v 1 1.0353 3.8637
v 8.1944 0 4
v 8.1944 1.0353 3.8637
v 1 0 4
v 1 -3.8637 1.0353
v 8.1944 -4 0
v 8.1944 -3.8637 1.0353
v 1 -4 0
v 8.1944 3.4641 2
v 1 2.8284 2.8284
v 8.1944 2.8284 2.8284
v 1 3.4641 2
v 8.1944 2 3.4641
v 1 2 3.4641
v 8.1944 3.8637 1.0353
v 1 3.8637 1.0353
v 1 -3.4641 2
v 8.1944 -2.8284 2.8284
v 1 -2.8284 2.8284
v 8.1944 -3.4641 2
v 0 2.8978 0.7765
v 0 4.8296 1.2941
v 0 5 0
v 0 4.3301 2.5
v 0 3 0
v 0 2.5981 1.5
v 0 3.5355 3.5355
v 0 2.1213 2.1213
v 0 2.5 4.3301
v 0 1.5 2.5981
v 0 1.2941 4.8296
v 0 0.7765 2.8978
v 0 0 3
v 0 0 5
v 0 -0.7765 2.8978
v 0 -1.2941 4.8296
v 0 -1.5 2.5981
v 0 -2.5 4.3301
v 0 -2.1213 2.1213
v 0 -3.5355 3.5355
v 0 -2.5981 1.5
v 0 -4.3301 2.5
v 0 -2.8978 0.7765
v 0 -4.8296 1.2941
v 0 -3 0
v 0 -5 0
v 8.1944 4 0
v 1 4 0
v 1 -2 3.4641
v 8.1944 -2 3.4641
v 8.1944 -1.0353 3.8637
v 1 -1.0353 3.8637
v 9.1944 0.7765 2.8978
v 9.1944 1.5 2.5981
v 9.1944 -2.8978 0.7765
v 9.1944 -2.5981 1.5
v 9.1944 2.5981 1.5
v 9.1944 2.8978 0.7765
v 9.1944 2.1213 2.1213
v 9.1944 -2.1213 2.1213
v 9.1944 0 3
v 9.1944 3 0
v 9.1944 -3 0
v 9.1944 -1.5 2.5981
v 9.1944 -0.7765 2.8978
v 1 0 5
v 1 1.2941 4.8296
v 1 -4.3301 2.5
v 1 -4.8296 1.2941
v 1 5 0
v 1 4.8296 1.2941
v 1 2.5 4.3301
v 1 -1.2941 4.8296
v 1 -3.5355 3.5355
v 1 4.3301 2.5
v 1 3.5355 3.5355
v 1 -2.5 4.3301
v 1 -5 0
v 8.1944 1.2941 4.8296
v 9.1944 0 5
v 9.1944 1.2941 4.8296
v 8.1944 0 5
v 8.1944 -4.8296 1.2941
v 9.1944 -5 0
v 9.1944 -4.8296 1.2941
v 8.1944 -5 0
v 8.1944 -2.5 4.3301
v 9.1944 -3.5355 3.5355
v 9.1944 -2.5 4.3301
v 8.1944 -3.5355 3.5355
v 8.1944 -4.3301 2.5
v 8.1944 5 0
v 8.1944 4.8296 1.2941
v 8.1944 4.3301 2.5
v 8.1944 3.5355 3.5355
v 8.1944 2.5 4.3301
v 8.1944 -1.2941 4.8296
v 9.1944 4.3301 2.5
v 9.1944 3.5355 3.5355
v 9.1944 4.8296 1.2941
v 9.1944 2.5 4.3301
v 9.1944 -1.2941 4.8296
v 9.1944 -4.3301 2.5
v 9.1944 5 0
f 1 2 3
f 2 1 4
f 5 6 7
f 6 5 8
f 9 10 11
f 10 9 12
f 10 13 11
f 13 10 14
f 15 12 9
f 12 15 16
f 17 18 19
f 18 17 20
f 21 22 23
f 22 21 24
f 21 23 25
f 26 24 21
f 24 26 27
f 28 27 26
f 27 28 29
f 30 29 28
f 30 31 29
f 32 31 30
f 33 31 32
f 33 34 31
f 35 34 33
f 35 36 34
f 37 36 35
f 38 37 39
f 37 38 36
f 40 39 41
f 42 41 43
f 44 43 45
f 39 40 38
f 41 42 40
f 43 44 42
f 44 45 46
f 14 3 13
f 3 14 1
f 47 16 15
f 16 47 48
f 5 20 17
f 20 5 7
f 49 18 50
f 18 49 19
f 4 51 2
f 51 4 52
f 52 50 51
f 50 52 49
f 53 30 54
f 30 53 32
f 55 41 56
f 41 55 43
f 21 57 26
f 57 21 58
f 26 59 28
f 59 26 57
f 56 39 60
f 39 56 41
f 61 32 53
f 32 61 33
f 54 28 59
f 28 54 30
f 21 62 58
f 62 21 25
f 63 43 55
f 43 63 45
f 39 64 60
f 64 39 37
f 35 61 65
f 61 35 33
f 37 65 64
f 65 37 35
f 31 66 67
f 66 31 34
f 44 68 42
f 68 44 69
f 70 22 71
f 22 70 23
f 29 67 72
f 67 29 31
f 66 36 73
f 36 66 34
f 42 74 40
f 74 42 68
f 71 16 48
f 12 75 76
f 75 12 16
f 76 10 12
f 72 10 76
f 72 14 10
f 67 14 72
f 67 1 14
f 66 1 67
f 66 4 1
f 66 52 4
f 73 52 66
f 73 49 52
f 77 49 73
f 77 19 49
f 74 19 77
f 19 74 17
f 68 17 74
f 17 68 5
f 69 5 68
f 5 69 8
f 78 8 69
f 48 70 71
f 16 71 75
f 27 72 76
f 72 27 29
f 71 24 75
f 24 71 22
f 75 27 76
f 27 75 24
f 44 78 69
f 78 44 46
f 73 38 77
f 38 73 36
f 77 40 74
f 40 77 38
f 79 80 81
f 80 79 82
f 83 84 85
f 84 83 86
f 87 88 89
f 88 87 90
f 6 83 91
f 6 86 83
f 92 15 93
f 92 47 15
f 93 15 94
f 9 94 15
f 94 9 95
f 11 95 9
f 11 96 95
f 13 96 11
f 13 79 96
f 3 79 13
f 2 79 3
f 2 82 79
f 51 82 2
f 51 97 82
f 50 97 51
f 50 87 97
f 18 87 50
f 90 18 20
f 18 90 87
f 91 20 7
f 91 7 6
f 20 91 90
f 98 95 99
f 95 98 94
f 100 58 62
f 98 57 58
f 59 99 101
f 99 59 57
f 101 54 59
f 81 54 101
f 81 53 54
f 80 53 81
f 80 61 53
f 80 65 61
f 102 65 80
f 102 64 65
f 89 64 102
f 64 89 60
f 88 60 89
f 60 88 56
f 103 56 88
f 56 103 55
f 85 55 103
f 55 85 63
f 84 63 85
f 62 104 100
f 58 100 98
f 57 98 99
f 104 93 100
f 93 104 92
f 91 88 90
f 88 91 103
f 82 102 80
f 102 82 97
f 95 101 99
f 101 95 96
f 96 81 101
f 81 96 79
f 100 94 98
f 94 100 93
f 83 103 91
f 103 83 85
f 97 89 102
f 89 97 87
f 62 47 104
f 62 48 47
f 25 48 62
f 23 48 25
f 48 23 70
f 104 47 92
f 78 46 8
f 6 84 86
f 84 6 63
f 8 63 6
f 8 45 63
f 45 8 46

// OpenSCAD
// file: ../build_environments.scad
// build_environments.scad: modules to build level sections
//

module pool(diameter=10.0, wall_height=2.0, step_width=3.0, connections=[])
{
    difference() {
        union() {
        difference() {
            cylinder(h=0.5,r1=diameter+step_width,r2=diameter+step_width,$fn=48);
            translate([0,0,-0.1])
                cylinder(h=0.7,r1=diameter,r2=diameter,$fn=48);
        }
        difference() {
            cylinder(h=wall_height,r1=diameter+step_width+1.0,r2=diameter+step_width+1.0,$fn=48);
            translate([0,0,-0.1])
                cylinder(h=wall_height+0.2,r1=diameter+step_width,r2=diameter+step_width,$fn=48);
        }
        }
    
        for (c = connections)
        {
            rotate([0,90,0]) {
                angle = atan2(c[1],c[0]);
                rotate([-angle,0,0]) {
                    cylinder(h=diameter+5.0,r1=c[2],r2=c[2],$fn=48);
                }
            }
        }
    }
}

module straight(length=10.0, width=2.0, dy1=0.0, dy2=0.0, dz=0.0)
{
    dims = [0, 0, 0, 0, 0, (dz/length)];
    matrix = [
        [ 1, dims[0], dims[1], 0 ],
        [ dims[2], 1, dims[4], 0 ],
        [ dims[5], dims[3], 1, 0 ],
        [ 0, 0, 0, 1 ]
    ];
    multmatrix(matrix)
    difference() {
        translate([dy1,0,0])
        union() {
            rotate([0,90,0]) {
                difference() {
                    cylinder(h=(length-dy1-dy2),r1=width+1.0,r2=width+1.0,$fn=24);
                    translate([0,0,-0.1])
                        cylinder(h=(length-dy1-dy2+0.2),r1=width,r2=width,$fn=24);
                }
                difference() {
                    cylinder(h=1.0,r1=width+2.0,r2=width+2.0,$fn=24);
                    translate([0,0,-0.1])
                        cylinder(h=1.2,r1=width,r2=width,$fn=24);
                }
                translate([0,0,(length-dy1-dy2)-1.0]) {
                    difference() {
                        cylinder(h=1.0,r1=width+2.0,r2=width+2.0,$fn=24);
                        translate([0,0,-0.1])
                            cylinder(h=1.2,r1=width,r2=width,$fn=24);
                    }
                }
            }
        }
        translate([0,0,-(2*width+4.0)/2])
            cube([3*length,3*length,2*width+4.0],center=true);
    }
}

module curve(p0=[0,0], center=[0,0], dir=1, angle=0.0, width=2.0)
{
    radius = sqrt((p0[0]-center[0])*(p0[0]-center[0]) + (p0[1]-center[1])*(p0[1]-center[1]));
    if (dir == 0) {
        difference() {
            rotate([0,0,-90])
            difference() {
                rotate_extrude(angle = angle, convexity = 10, $fn=32)
                    translate([radius, 0, 0])
                        circle(r = width+1.0,$fn=24);
                rotate([0,0,-1.0])
                    rotate_extrude(angle = angle+2.0, convexity = 10, $fn=32)
                        translate([radius, 0, 0])
                            circle(r = width,$fn=24);
            }
            translate([0,0,-(2*width+4.0)/2])
                cube([5*radius,5*radius,2*width+4.0],center=true);
        }
    }
    else {
        difference() {
            rotate([0,0,90])
            difference() {
                rotate_extrude(angle = -angle, convexity = 10, $fn=32)
                    translate([radius, 0, 0])
                        circle(r = width+1.0,$fn=24);
                rotate([0,0,1.0])
                    rotate_extrude(angle = -angle-2.0, convexity = 10, $fn=32)
                        translate([radius, 0, 0])
                            circle(r = width,$fn=24);
            }
            translate([0,0,-(2*width+4.0)/2])
                cube([5*radius,5*radius,2*width+4.0],center=true);
        }
    }

}

// test pool
//pool(diameter=12.0000, wall_height=3.0000, step_width=3.0000, connections=[[0.0000,-26.0000,2.0000], [23.6074,0.0000,2.0000]]);

// test straight, slope
//straight(length=26.0000, width=2.0000, dy1=11.8322, dy2=6.7082, dz=0.0000);
//straight(length=29.1549, width=12.0000, dy1=0.0000, dy2=0.0000, dz=-15.0000);

// test curve
//curve(p0=[23.6074, 0.0000], center=[23.6074, 5.0000], dir=0, angle=60.1011, width=2.0000);
//curve(p0=[33.6426, 12.4219], center=[37.9771, 9.9295], dir=1, angle=120.4627, width=2.0000);
// main file
use <../build_environments.scad>;
straight(length=9.1944, width=3.0000, dy1=0.0000, dy2=0.0000, dz=0.0000);
